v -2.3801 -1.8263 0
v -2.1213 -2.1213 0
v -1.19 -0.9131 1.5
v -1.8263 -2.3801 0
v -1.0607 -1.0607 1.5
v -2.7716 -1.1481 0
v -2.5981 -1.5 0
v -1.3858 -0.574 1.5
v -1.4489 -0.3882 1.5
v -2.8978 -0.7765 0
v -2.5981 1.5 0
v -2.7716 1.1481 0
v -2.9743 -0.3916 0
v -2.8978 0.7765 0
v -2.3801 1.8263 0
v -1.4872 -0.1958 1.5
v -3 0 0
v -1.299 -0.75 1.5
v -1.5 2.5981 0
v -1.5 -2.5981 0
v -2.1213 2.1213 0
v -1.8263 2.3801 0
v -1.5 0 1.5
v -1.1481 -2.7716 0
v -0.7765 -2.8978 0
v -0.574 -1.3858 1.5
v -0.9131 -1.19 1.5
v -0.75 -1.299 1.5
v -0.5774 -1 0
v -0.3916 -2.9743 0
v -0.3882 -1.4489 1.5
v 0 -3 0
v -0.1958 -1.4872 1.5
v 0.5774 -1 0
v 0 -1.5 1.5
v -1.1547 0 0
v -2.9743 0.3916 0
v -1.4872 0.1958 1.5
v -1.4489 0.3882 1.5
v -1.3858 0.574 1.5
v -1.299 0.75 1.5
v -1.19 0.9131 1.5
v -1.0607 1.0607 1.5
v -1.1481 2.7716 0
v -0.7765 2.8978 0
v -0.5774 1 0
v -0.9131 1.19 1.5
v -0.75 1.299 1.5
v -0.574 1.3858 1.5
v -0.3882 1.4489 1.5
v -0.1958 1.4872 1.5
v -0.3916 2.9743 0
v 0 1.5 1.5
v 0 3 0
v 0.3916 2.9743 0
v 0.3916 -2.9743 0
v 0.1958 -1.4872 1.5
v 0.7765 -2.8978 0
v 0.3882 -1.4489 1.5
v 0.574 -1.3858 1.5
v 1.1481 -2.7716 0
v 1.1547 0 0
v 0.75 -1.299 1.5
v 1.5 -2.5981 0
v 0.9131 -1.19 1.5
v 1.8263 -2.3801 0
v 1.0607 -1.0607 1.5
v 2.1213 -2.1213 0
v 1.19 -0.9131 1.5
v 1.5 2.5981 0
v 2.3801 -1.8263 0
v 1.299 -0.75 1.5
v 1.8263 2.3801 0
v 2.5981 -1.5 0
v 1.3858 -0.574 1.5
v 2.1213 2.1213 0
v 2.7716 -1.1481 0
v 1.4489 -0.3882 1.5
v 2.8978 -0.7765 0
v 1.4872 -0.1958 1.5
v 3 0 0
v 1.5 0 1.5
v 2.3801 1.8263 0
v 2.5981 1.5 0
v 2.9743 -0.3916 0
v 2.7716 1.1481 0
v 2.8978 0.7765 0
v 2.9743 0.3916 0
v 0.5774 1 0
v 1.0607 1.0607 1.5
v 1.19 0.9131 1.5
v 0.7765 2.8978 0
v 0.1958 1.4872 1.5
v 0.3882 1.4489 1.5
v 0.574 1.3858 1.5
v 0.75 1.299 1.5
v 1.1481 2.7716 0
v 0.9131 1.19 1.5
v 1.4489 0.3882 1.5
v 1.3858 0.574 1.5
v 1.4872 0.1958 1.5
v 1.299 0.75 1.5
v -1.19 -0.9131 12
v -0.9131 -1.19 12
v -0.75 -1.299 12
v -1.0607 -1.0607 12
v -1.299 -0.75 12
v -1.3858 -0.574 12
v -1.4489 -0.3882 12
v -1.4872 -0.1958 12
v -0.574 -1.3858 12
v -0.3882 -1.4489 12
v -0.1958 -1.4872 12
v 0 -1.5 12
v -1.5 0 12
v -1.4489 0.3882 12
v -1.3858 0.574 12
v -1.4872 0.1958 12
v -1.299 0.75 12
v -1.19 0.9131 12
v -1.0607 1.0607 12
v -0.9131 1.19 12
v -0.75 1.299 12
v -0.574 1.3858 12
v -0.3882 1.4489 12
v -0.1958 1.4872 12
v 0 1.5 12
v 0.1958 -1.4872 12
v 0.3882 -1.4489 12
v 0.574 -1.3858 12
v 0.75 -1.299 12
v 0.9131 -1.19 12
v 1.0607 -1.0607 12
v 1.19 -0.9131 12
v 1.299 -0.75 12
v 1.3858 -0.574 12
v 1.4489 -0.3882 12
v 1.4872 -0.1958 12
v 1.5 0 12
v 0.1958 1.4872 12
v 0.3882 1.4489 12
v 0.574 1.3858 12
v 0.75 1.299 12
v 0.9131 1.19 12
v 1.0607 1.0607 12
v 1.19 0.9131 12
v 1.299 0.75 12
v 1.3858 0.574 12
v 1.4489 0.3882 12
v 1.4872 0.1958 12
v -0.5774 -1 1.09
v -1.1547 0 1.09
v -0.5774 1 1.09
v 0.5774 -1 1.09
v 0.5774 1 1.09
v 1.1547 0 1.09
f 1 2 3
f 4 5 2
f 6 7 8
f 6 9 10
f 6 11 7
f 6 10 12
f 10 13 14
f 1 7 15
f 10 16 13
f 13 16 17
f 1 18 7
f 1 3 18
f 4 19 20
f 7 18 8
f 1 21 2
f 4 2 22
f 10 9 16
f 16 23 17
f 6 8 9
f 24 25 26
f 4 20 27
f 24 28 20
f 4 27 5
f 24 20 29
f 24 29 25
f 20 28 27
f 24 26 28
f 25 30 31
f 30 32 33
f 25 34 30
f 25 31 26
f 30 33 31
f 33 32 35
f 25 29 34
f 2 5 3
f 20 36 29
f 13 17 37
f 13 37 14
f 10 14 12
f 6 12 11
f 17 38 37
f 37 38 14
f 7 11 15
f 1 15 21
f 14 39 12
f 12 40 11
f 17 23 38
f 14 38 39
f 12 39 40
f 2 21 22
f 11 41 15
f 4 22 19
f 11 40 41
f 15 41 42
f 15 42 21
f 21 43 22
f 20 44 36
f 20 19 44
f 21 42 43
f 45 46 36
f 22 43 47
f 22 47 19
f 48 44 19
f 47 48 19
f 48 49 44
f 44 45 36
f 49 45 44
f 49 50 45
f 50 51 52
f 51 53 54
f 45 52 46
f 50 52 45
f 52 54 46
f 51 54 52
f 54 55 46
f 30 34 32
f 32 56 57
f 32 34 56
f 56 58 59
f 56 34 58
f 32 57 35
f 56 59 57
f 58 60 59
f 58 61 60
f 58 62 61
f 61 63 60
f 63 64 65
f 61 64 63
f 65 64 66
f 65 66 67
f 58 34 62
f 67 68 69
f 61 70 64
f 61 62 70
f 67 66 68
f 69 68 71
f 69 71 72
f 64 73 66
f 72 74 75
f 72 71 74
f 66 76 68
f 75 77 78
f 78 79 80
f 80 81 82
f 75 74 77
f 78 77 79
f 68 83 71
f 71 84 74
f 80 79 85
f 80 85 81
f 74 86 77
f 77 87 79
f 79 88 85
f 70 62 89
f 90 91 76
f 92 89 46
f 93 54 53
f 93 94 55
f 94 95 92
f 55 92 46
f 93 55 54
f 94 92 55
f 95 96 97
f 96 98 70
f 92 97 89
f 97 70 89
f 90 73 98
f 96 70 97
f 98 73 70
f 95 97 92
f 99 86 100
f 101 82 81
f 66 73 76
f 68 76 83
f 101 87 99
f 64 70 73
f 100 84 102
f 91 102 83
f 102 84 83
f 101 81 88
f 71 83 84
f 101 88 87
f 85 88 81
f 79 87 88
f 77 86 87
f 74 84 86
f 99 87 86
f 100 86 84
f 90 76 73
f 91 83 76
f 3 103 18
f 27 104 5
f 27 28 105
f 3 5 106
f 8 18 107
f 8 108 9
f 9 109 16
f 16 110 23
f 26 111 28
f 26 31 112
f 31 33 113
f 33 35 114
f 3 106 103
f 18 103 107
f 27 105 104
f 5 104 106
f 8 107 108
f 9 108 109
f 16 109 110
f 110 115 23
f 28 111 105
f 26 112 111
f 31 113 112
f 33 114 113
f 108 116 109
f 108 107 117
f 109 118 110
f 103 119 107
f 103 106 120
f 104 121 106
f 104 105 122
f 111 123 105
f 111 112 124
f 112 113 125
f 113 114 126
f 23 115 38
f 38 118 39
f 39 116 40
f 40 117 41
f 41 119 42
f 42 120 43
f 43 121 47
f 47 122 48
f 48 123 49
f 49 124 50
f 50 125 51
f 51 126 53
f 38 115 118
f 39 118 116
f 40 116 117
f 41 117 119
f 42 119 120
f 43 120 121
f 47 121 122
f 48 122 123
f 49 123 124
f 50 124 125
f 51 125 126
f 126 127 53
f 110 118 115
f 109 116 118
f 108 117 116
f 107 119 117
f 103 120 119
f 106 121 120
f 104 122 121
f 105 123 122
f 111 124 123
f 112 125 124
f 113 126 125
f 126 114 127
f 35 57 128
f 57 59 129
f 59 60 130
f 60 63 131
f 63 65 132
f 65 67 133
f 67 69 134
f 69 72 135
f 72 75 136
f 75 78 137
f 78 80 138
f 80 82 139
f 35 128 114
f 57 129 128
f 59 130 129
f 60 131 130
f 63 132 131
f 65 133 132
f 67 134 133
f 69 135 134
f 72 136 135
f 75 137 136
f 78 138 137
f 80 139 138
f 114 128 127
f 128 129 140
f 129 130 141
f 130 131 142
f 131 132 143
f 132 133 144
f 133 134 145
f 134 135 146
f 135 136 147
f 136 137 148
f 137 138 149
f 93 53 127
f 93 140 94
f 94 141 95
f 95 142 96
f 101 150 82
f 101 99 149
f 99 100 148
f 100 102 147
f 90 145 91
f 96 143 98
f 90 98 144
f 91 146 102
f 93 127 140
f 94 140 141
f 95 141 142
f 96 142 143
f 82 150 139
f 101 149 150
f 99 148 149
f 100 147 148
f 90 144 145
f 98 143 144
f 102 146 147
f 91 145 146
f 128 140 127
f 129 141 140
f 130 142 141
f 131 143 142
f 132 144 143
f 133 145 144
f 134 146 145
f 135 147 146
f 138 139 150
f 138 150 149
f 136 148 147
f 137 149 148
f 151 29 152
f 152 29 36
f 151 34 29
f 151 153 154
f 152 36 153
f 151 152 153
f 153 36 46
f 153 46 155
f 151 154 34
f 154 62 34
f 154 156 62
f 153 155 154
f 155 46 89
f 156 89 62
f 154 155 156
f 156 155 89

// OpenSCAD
// Nominal, thread-free purchased hardware envelopes for fit and instruction views.
module nut() {
    difference() {
        cylinder(h=2.4,r=5.5/sqrt(3),$fn=6);
        translate([0,0,-0.1]) cylinder(h=2.6,d=2.5,$fn=48);
    }
}
module screw() {
    difference() {
        union() {
            cylinder(h=1.5,d1=6,d2=3,$fn=48);
            translate([0,0,1.49]) cylinder(h=10.51,d=3,$fn=48);
        }
        translate([0,0,-0.01]) cylinder(h=1.1,d=2*2/sqrt(3),$fn=6);
    }
}

screw();
